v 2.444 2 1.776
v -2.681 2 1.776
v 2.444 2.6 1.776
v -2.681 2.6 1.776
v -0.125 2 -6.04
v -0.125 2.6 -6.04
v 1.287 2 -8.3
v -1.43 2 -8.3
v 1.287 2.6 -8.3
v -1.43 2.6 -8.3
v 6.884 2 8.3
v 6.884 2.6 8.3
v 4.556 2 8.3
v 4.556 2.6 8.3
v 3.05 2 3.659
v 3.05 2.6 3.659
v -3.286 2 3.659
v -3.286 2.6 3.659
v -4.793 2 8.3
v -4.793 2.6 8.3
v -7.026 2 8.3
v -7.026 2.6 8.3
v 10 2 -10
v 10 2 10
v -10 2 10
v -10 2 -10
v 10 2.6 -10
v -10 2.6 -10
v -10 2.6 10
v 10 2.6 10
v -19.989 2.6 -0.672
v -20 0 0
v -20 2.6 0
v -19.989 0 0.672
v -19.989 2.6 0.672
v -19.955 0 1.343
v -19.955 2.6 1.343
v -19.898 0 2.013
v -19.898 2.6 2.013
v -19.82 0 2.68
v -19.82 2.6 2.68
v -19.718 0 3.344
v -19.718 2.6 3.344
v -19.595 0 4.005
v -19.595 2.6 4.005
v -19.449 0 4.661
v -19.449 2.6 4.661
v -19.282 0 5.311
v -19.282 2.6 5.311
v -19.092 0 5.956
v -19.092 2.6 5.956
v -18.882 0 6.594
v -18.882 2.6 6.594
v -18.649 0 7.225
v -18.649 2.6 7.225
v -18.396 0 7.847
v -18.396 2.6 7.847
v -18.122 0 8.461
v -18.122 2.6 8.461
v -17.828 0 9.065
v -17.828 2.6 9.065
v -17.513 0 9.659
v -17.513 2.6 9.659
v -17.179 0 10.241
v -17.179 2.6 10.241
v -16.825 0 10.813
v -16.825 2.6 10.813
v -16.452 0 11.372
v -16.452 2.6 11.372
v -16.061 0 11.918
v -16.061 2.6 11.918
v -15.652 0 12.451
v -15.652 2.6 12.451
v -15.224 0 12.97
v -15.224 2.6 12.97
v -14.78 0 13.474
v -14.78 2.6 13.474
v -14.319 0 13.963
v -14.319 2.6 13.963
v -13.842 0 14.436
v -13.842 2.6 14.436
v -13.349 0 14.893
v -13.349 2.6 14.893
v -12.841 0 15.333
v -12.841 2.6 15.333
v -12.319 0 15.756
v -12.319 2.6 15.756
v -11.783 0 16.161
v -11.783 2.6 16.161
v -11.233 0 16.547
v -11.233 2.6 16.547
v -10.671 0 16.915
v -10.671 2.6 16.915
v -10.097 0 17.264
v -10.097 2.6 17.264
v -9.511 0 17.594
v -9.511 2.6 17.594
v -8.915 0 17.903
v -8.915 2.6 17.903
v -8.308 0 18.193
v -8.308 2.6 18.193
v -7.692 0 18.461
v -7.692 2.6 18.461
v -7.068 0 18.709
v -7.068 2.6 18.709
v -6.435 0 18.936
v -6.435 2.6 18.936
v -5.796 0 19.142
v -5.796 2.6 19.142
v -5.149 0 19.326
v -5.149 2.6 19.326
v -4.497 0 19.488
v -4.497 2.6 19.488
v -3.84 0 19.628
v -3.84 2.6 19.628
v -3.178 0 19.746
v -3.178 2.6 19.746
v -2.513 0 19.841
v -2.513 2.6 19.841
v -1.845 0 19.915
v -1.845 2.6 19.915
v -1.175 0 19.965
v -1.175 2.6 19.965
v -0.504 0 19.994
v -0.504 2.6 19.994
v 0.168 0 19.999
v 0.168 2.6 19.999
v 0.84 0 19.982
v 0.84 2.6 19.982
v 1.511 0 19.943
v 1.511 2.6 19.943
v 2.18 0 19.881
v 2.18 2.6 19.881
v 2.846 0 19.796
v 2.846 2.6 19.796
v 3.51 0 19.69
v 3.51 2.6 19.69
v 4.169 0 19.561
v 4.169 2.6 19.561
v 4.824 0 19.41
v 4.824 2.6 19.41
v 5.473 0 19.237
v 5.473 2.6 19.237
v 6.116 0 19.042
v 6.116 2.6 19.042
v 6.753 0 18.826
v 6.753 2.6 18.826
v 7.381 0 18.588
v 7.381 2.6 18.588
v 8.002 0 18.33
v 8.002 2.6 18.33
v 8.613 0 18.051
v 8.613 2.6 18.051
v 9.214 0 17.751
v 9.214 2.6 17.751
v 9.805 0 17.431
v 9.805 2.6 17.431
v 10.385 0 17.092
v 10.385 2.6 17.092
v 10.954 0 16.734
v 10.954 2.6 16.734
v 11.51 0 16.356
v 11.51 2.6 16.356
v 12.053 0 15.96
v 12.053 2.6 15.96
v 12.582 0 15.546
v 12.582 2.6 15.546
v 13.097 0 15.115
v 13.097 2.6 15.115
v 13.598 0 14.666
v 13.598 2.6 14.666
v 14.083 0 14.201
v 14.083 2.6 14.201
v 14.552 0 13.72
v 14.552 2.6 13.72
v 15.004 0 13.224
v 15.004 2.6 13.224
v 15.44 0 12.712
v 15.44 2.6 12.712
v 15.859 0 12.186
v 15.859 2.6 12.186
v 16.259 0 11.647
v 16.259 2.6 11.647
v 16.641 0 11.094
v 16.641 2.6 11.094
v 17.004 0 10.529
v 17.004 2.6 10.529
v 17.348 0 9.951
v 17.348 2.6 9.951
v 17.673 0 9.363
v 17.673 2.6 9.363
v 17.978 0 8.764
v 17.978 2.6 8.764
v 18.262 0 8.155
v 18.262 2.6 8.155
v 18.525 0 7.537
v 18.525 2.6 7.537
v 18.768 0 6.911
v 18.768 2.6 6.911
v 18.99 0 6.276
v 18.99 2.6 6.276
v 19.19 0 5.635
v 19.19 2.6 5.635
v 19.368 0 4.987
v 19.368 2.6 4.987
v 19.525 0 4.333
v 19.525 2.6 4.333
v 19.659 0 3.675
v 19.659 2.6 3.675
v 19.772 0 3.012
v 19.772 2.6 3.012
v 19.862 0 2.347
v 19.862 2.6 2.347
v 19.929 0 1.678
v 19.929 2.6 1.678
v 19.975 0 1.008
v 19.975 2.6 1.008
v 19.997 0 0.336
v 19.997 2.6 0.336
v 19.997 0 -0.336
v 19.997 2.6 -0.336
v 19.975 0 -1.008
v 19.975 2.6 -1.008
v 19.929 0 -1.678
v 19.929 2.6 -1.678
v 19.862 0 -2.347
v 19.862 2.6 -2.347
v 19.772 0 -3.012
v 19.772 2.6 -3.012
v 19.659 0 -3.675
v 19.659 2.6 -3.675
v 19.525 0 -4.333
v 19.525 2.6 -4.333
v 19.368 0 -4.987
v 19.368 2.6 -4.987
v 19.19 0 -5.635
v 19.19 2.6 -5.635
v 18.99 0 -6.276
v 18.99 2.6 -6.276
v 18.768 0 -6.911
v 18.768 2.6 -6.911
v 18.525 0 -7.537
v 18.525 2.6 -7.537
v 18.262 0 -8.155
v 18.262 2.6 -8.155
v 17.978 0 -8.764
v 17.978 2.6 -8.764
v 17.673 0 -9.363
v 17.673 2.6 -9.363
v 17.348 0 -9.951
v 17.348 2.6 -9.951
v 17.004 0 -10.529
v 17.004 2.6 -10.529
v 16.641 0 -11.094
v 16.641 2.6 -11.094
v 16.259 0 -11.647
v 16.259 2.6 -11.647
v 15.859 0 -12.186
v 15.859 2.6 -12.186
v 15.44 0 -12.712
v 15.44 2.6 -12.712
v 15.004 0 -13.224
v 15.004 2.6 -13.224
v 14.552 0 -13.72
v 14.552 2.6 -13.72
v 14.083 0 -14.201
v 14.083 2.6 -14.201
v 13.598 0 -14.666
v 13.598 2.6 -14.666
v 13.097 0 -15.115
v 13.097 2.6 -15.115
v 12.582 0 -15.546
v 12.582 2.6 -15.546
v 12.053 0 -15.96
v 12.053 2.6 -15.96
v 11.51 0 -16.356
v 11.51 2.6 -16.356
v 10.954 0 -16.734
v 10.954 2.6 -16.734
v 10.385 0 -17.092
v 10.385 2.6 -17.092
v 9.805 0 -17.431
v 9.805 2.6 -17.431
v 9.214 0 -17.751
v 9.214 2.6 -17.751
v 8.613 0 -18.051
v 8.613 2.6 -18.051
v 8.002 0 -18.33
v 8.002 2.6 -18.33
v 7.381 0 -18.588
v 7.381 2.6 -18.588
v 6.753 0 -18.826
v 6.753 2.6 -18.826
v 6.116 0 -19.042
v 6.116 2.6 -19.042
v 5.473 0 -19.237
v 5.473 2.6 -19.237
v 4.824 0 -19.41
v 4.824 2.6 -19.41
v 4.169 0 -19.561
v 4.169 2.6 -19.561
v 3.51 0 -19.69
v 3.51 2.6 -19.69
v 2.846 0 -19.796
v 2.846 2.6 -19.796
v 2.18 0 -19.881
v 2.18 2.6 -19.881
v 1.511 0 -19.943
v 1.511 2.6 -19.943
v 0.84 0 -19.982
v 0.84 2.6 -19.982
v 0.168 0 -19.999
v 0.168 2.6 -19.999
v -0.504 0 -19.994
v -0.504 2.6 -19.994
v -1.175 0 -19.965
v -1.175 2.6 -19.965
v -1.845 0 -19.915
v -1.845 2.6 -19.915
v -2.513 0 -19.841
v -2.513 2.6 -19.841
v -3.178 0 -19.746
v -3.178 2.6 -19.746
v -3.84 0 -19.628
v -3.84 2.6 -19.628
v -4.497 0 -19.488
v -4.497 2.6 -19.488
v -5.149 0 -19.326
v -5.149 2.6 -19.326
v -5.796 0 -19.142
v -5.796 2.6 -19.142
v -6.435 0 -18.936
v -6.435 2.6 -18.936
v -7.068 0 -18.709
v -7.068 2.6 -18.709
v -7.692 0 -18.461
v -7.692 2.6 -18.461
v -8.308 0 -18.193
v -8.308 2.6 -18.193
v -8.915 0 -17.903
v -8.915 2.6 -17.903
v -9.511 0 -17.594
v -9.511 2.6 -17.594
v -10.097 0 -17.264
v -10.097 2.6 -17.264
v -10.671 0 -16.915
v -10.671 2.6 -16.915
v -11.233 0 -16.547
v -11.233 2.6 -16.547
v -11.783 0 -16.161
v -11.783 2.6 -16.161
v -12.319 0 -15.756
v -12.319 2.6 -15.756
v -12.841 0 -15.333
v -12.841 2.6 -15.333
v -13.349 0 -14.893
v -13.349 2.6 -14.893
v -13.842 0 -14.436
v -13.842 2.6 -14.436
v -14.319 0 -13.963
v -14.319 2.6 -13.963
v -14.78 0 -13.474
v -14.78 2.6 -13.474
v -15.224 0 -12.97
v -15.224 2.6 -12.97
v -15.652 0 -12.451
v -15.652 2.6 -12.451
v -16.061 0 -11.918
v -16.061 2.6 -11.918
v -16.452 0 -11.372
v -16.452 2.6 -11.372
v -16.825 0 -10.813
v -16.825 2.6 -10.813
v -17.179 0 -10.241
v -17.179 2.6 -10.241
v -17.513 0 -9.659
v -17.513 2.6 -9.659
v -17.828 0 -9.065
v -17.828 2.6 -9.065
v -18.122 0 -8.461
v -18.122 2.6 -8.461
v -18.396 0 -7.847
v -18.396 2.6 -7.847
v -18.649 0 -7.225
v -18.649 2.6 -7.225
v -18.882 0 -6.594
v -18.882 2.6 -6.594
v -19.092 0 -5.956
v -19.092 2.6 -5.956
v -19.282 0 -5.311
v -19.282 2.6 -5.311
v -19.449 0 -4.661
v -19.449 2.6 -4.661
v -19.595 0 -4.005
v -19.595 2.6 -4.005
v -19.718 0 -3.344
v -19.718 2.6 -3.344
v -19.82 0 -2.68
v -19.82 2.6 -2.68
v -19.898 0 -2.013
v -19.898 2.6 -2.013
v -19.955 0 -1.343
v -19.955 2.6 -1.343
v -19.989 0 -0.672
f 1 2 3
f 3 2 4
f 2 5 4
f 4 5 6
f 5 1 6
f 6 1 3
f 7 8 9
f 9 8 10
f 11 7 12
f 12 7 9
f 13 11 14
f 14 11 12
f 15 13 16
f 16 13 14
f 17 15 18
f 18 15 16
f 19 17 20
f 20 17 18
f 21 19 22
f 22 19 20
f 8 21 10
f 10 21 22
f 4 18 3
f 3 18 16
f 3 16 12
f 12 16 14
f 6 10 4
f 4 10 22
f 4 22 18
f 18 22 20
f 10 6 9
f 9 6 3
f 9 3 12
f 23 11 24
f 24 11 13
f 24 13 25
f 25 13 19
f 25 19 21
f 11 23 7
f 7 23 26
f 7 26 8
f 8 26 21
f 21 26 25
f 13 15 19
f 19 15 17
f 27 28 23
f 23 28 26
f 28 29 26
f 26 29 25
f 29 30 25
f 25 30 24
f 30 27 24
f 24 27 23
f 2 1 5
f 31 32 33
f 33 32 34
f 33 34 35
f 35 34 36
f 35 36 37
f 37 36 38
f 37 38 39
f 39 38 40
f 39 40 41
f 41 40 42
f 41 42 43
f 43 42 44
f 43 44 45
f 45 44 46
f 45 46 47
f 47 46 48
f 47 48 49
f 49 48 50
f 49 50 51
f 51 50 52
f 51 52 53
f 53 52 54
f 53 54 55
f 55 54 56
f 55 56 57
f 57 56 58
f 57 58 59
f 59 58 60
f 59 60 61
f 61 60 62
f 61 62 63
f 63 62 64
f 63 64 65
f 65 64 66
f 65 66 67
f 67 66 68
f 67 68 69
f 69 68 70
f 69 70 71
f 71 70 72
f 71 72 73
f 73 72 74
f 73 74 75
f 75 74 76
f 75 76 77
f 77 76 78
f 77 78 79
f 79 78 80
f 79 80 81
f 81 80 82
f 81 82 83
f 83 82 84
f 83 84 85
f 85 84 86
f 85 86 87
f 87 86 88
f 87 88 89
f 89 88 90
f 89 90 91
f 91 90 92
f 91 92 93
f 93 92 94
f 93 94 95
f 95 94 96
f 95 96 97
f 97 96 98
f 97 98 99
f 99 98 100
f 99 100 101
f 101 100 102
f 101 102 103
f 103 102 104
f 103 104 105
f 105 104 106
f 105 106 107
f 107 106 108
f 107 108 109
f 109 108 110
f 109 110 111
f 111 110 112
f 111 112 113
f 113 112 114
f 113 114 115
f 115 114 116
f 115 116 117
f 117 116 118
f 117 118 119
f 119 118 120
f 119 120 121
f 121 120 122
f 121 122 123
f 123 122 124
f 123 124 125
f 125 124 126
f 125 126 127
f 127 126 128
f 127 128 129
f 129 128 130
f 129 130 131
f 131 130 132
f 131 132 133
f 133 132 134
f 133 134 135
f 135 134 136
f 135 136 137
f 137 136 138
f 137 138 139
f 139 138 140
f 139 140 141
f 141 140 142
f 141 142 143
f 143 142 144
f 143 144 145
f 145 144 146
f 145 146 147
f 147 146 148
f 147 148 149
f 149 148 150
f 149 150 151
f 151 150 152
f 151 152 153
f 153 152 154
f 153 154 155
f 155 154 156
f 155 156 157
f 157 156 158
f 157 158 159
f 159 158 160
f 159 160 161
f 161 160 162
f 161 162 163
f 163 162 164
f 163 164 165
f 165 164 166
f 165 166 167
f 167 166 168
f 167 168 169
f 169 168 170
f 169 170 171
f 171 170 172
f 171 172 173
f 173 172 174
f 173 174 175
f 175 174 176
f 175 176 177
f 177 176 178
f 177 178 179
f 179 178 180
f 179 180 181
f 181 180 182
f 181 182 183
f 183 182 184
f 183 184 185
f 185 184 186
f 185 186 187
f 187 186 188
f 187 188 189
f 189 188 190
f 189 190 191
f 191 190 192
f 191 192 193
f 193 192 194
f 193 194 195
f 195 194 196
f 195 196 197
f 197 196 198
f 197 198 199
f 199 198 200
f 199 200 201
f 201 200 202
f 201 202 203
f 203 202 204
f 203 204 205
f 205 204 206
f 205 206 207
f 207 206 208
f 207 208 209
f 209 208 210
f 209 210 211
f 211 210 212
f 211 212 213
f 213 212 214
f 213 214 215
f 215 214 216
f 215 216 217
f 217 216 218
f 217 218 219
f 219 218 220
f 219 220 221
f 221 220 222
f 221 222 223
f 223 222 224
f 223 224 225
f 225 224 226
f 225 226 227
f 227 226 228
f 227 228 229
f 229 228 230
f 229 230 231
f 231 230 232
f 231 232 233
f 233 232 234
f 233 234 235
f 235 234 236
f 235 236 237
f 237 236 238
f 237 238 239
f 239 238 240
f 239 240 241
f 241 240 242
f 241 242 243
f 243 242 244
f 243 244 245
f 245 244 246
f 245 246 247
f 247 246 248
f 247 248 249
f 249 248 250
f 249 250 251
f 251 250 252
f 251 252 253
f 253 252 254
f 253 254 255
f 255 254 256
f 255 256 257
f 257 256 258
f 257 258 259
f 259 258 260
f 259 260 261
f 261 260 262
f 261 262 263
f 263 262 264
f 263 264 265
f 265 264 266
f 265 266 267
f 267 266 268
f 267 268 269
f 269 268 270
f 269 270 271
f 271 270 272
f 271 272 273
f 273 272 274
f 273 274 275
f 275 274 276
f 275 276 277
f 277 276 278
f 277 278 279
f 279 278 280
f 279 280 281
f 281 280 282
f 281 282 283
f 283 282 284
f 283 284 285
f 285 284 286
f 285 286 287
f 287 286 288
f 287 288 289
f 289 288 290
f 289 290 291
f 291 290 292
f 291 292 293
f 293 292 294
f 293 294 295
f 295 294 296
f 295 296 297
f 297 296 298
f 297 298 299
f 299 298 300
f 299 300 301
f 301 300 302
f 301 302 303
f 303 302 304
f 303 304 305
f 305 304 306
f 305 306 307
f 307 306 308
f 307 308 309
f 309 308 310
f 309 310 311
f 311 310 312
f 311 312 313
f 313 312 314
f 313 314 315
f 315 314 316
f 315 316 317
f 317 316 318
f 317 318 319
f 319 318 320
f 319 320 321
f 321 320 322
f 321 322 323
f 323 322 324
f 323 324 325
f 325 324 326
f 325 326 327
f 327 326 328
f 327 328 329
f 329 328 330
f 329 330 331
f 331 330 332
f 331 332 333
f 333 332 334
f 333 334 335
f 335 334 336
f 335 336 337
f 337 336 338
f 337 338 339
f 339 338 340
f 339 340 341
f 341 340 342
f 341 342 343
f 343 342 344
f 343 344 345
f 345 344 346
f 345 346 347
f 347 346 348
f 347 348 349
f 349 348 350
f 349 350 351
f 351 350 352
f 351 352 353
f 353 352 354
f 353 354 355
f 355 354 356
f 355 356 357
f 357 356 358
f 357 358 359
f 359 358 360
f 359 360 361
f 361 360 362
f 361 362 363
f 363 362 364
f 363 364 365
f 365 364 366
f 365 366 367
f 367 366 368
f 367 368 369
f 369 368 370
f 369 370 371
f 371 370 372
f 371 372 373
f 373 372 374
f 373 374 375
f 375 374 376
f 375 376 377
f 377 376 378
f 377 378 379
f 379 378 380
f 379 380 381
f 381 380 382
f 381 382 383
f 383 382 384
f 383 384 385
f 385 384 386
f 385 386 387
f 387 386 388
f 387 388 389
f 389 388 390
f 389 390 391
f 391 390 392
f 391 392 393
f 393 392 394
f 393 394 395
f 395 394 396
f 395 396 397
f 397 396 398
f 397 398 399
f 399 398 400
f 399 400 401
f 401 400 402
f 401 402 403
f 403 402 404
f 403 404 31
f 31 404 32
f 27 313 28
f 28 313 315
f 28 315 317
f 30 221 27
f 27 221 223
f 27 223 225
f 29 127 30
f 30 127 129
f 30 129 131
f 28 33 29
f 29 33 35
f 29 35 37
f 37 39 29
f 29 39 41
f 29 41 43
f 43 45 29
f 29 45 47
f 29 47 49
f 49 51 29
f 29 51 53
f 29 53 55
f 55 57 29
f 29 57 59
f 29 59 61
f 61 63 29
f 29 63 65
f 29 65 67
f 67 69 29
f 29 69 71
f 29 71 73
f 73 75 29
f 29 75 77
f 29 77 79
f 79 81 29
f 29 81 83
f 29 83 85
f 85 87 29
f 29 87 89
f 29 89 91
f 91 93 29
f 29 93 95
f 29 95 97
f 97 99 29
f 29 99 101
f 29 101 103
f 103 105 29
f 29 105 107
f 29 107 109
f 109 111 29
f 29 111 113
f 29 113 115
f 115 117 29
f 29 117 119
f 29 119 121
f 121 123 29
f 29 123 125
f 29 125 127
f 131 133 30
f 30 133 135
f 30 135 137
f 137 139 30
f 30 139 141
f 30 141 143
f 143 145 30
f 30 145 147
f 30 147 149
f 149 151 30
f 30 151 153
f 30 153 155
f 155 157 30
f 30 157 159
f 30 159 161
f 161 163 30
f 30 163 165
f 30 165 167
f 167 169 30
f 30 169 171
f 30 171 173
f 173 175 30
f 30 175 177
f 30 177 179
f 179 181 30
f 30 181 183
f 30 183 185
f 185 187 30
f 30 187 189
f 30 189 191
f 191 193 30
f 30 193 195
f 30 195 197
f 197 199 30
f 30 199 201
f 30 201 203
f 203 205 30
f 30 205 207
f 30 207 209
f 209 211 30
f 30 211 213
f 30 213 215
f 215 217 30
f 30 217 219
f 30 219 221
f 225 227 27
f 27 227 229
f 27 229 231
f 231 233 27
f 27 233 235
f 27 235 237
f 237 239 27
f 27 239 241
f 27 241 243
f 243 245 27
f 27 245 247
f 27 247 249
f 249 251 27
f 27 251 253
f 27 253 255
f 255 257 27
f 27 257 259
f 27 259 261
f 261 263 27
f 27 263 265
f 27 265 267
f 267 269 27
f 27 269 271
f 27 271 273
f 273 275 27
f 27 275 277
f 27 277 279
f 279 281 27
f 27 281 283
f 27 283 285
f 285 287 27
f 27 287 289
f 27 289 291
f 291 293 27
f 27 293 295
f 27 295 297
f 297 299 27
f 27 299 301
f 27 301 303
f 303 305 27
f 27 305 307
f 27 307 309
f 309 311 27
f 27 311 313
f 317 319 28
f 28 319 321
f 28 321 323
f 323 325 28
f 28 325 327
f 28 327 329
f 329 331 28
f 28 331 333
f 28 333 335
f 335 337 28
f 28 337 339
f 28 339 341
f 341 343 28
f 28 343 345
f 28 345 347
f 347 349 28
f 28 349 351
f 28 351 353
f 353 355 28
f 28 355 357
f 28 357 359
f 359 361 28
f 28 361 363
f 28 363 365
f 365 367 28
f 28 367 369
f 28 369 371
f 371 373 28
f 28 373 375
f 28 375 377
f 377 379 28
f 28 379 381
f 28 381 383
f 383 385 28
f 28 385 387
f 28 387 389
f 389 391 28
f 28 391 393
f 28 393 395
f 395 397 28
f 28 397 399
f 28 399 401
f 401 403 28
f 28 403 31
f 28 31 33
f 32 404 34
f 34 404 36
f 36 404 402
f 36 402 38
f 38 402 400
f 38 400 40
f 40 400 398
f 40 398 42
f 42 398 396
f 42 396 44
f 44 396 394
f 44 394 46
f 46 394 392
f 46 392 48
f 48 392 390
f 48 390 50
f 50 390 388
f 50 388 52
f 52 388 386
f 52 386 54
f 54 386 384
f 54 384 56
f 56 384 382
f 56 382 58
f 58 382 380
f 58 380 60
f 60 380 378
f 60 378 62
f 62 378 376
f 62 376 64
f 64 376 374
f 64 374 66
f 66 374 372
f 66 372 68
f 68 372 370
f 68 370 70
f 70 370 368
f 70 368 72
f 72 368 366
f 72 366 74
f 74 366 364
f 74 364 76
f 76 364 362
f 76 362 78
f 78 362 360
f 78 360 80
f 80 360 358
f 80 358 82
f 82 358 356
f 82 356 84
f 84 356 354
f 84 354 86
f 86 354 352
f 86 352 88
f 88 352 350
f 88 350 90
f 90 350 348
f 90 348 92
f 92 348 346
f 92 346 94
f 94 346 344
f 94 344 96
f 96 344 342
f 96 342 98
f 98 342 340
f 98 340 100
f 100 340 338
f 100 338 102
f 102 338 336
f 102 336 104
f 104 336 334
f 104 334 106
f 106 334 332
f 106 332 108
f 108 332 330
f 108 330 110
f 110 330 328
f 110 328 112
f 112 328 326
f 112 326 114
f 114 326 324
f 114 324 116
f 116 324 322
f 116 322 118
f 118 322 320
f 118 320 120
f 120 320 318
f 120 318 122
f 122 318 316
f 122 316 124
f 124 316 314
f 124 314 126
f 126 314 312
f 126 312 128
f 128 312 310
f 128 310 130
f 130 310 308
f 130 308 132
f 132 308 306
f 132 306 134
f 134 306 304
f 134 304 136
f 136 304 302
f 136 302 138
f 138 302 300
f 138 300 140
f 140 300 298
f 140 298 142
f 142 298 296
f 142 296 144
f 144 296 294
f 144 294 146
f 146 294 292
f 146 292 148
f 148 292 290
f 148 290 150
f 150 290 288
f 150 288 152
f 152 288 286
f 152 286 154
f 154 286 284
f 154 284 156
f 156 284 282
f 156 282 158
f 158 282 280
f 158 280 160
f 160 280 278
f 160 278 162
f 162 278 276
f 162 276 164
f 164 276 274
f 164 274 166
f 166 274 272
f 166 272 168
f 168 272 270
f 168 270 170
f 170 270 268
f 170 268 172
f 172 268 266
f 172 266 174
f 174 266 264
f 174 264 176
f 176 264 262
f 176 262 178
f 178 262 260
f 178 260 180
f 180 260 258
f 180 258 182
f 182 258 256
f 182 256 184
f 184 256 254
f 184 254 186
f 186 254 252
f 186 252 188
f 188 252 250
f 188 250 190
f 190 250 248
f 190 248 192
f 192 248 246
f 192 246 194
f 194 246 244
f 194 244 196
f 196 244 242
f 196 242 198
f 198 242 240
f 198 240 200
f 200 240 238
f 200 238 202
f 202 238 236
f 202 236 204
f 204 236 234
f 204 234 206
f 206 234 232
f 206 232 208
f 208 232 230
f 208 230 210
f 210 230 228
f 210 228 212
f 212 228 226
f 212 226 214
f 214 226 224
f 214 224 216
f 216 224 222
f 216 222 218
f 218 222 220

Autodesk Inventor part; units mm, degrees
ref_plane "YZ Plane" through (0, 0, 0) normal (1, 0, 0) x (0, 1, 0)
ref_plane "XZ Plane" through (0, 0, 0) normal (0, 1, 0) x (-1, 0, 0)
ref_plane "XY Plane" through (0, 0, 0) normal (0, 0, 1) x (1, 0, 0)
sketch "Sketch1" plane through (0, 0, 0) normal (0, 1, 0) x (-1, 0, 0)
  circle A0 centre (0, 0) radius 20
  dimension "d0" = 40
extrude "Extrusion1" add sketch "Sketch1" along normal blind 2.6
sketch "Sketch2" plane through (0, 2.6, 0) normal (0, 1, 0) x (1, 0, 0)
  line L0 (-10, -10) -> (-10, 10)
  line L1 (-10, 10) -> (10, 10)
  line L2 (10, 10) -> (10, -10)
  line L3 (10, -10) -> (-10, -10)
  line L4 (-10, -10) -> (10, 10) construction
  line L5 (-10, 10) -> (10, -10) construction
  point P0 (0, 0)
  dimension "d3" = 20
  dimension "d4" = 20
extrude "Extrusion2" cut sketch "Sketch2" against normal blind 0.6
sketch "Sketch3" plane through (0, 2, 0) normal (0, 1, 0) x (1, 0, 0)
  line L0 (-6.9184, 8.3) -> (6.9911, 8.3) construction
  line L1 (6.9911, 8.3) -> (6.9911, -8.3) construction
  line L2 (6.9911, -8.3) -> (-6.9184, -8.3) construction
  line L3 (-6.9184, -8.3) -> (-6.9184, 8.3) construction
  line L4 (-7.026, -8.3) -> (-1.4299, 8.3)
  line L5 (-1.4299, 8.3) -> (1.2874, 8.3)
  line L6 (1.2874, 8.3) -> (6.8835, -8.3)
  line L7 (6.8835, -8.3) -> (4.5563, -8.3)
  line L8 (4.5563, -8.3) -> (3.0496, -3.659)
  line L9 (3.0496, -3.659) -> (-3.2863, -3.659)
  line L10 (-3.2863, -3.659) -> (-4.793, -8.3)
  line L11 (-4.793, -8.3) -> (-7.026, -8.3)
  line L12 (2.4443, -1.7757) -> (-0.1251, 6.04)
  line L13 (-0.1251, 6.04) -> (-2.681, -1.7757)
  line L14 (-2.681, -1.7757) -> (2.4443, -1.7757)
  point P0 (0, 0)
extrude "Extrusion3" add sketch "Sketch3" along normal blind 0.6
properties part number "TopMarkerPreset"
